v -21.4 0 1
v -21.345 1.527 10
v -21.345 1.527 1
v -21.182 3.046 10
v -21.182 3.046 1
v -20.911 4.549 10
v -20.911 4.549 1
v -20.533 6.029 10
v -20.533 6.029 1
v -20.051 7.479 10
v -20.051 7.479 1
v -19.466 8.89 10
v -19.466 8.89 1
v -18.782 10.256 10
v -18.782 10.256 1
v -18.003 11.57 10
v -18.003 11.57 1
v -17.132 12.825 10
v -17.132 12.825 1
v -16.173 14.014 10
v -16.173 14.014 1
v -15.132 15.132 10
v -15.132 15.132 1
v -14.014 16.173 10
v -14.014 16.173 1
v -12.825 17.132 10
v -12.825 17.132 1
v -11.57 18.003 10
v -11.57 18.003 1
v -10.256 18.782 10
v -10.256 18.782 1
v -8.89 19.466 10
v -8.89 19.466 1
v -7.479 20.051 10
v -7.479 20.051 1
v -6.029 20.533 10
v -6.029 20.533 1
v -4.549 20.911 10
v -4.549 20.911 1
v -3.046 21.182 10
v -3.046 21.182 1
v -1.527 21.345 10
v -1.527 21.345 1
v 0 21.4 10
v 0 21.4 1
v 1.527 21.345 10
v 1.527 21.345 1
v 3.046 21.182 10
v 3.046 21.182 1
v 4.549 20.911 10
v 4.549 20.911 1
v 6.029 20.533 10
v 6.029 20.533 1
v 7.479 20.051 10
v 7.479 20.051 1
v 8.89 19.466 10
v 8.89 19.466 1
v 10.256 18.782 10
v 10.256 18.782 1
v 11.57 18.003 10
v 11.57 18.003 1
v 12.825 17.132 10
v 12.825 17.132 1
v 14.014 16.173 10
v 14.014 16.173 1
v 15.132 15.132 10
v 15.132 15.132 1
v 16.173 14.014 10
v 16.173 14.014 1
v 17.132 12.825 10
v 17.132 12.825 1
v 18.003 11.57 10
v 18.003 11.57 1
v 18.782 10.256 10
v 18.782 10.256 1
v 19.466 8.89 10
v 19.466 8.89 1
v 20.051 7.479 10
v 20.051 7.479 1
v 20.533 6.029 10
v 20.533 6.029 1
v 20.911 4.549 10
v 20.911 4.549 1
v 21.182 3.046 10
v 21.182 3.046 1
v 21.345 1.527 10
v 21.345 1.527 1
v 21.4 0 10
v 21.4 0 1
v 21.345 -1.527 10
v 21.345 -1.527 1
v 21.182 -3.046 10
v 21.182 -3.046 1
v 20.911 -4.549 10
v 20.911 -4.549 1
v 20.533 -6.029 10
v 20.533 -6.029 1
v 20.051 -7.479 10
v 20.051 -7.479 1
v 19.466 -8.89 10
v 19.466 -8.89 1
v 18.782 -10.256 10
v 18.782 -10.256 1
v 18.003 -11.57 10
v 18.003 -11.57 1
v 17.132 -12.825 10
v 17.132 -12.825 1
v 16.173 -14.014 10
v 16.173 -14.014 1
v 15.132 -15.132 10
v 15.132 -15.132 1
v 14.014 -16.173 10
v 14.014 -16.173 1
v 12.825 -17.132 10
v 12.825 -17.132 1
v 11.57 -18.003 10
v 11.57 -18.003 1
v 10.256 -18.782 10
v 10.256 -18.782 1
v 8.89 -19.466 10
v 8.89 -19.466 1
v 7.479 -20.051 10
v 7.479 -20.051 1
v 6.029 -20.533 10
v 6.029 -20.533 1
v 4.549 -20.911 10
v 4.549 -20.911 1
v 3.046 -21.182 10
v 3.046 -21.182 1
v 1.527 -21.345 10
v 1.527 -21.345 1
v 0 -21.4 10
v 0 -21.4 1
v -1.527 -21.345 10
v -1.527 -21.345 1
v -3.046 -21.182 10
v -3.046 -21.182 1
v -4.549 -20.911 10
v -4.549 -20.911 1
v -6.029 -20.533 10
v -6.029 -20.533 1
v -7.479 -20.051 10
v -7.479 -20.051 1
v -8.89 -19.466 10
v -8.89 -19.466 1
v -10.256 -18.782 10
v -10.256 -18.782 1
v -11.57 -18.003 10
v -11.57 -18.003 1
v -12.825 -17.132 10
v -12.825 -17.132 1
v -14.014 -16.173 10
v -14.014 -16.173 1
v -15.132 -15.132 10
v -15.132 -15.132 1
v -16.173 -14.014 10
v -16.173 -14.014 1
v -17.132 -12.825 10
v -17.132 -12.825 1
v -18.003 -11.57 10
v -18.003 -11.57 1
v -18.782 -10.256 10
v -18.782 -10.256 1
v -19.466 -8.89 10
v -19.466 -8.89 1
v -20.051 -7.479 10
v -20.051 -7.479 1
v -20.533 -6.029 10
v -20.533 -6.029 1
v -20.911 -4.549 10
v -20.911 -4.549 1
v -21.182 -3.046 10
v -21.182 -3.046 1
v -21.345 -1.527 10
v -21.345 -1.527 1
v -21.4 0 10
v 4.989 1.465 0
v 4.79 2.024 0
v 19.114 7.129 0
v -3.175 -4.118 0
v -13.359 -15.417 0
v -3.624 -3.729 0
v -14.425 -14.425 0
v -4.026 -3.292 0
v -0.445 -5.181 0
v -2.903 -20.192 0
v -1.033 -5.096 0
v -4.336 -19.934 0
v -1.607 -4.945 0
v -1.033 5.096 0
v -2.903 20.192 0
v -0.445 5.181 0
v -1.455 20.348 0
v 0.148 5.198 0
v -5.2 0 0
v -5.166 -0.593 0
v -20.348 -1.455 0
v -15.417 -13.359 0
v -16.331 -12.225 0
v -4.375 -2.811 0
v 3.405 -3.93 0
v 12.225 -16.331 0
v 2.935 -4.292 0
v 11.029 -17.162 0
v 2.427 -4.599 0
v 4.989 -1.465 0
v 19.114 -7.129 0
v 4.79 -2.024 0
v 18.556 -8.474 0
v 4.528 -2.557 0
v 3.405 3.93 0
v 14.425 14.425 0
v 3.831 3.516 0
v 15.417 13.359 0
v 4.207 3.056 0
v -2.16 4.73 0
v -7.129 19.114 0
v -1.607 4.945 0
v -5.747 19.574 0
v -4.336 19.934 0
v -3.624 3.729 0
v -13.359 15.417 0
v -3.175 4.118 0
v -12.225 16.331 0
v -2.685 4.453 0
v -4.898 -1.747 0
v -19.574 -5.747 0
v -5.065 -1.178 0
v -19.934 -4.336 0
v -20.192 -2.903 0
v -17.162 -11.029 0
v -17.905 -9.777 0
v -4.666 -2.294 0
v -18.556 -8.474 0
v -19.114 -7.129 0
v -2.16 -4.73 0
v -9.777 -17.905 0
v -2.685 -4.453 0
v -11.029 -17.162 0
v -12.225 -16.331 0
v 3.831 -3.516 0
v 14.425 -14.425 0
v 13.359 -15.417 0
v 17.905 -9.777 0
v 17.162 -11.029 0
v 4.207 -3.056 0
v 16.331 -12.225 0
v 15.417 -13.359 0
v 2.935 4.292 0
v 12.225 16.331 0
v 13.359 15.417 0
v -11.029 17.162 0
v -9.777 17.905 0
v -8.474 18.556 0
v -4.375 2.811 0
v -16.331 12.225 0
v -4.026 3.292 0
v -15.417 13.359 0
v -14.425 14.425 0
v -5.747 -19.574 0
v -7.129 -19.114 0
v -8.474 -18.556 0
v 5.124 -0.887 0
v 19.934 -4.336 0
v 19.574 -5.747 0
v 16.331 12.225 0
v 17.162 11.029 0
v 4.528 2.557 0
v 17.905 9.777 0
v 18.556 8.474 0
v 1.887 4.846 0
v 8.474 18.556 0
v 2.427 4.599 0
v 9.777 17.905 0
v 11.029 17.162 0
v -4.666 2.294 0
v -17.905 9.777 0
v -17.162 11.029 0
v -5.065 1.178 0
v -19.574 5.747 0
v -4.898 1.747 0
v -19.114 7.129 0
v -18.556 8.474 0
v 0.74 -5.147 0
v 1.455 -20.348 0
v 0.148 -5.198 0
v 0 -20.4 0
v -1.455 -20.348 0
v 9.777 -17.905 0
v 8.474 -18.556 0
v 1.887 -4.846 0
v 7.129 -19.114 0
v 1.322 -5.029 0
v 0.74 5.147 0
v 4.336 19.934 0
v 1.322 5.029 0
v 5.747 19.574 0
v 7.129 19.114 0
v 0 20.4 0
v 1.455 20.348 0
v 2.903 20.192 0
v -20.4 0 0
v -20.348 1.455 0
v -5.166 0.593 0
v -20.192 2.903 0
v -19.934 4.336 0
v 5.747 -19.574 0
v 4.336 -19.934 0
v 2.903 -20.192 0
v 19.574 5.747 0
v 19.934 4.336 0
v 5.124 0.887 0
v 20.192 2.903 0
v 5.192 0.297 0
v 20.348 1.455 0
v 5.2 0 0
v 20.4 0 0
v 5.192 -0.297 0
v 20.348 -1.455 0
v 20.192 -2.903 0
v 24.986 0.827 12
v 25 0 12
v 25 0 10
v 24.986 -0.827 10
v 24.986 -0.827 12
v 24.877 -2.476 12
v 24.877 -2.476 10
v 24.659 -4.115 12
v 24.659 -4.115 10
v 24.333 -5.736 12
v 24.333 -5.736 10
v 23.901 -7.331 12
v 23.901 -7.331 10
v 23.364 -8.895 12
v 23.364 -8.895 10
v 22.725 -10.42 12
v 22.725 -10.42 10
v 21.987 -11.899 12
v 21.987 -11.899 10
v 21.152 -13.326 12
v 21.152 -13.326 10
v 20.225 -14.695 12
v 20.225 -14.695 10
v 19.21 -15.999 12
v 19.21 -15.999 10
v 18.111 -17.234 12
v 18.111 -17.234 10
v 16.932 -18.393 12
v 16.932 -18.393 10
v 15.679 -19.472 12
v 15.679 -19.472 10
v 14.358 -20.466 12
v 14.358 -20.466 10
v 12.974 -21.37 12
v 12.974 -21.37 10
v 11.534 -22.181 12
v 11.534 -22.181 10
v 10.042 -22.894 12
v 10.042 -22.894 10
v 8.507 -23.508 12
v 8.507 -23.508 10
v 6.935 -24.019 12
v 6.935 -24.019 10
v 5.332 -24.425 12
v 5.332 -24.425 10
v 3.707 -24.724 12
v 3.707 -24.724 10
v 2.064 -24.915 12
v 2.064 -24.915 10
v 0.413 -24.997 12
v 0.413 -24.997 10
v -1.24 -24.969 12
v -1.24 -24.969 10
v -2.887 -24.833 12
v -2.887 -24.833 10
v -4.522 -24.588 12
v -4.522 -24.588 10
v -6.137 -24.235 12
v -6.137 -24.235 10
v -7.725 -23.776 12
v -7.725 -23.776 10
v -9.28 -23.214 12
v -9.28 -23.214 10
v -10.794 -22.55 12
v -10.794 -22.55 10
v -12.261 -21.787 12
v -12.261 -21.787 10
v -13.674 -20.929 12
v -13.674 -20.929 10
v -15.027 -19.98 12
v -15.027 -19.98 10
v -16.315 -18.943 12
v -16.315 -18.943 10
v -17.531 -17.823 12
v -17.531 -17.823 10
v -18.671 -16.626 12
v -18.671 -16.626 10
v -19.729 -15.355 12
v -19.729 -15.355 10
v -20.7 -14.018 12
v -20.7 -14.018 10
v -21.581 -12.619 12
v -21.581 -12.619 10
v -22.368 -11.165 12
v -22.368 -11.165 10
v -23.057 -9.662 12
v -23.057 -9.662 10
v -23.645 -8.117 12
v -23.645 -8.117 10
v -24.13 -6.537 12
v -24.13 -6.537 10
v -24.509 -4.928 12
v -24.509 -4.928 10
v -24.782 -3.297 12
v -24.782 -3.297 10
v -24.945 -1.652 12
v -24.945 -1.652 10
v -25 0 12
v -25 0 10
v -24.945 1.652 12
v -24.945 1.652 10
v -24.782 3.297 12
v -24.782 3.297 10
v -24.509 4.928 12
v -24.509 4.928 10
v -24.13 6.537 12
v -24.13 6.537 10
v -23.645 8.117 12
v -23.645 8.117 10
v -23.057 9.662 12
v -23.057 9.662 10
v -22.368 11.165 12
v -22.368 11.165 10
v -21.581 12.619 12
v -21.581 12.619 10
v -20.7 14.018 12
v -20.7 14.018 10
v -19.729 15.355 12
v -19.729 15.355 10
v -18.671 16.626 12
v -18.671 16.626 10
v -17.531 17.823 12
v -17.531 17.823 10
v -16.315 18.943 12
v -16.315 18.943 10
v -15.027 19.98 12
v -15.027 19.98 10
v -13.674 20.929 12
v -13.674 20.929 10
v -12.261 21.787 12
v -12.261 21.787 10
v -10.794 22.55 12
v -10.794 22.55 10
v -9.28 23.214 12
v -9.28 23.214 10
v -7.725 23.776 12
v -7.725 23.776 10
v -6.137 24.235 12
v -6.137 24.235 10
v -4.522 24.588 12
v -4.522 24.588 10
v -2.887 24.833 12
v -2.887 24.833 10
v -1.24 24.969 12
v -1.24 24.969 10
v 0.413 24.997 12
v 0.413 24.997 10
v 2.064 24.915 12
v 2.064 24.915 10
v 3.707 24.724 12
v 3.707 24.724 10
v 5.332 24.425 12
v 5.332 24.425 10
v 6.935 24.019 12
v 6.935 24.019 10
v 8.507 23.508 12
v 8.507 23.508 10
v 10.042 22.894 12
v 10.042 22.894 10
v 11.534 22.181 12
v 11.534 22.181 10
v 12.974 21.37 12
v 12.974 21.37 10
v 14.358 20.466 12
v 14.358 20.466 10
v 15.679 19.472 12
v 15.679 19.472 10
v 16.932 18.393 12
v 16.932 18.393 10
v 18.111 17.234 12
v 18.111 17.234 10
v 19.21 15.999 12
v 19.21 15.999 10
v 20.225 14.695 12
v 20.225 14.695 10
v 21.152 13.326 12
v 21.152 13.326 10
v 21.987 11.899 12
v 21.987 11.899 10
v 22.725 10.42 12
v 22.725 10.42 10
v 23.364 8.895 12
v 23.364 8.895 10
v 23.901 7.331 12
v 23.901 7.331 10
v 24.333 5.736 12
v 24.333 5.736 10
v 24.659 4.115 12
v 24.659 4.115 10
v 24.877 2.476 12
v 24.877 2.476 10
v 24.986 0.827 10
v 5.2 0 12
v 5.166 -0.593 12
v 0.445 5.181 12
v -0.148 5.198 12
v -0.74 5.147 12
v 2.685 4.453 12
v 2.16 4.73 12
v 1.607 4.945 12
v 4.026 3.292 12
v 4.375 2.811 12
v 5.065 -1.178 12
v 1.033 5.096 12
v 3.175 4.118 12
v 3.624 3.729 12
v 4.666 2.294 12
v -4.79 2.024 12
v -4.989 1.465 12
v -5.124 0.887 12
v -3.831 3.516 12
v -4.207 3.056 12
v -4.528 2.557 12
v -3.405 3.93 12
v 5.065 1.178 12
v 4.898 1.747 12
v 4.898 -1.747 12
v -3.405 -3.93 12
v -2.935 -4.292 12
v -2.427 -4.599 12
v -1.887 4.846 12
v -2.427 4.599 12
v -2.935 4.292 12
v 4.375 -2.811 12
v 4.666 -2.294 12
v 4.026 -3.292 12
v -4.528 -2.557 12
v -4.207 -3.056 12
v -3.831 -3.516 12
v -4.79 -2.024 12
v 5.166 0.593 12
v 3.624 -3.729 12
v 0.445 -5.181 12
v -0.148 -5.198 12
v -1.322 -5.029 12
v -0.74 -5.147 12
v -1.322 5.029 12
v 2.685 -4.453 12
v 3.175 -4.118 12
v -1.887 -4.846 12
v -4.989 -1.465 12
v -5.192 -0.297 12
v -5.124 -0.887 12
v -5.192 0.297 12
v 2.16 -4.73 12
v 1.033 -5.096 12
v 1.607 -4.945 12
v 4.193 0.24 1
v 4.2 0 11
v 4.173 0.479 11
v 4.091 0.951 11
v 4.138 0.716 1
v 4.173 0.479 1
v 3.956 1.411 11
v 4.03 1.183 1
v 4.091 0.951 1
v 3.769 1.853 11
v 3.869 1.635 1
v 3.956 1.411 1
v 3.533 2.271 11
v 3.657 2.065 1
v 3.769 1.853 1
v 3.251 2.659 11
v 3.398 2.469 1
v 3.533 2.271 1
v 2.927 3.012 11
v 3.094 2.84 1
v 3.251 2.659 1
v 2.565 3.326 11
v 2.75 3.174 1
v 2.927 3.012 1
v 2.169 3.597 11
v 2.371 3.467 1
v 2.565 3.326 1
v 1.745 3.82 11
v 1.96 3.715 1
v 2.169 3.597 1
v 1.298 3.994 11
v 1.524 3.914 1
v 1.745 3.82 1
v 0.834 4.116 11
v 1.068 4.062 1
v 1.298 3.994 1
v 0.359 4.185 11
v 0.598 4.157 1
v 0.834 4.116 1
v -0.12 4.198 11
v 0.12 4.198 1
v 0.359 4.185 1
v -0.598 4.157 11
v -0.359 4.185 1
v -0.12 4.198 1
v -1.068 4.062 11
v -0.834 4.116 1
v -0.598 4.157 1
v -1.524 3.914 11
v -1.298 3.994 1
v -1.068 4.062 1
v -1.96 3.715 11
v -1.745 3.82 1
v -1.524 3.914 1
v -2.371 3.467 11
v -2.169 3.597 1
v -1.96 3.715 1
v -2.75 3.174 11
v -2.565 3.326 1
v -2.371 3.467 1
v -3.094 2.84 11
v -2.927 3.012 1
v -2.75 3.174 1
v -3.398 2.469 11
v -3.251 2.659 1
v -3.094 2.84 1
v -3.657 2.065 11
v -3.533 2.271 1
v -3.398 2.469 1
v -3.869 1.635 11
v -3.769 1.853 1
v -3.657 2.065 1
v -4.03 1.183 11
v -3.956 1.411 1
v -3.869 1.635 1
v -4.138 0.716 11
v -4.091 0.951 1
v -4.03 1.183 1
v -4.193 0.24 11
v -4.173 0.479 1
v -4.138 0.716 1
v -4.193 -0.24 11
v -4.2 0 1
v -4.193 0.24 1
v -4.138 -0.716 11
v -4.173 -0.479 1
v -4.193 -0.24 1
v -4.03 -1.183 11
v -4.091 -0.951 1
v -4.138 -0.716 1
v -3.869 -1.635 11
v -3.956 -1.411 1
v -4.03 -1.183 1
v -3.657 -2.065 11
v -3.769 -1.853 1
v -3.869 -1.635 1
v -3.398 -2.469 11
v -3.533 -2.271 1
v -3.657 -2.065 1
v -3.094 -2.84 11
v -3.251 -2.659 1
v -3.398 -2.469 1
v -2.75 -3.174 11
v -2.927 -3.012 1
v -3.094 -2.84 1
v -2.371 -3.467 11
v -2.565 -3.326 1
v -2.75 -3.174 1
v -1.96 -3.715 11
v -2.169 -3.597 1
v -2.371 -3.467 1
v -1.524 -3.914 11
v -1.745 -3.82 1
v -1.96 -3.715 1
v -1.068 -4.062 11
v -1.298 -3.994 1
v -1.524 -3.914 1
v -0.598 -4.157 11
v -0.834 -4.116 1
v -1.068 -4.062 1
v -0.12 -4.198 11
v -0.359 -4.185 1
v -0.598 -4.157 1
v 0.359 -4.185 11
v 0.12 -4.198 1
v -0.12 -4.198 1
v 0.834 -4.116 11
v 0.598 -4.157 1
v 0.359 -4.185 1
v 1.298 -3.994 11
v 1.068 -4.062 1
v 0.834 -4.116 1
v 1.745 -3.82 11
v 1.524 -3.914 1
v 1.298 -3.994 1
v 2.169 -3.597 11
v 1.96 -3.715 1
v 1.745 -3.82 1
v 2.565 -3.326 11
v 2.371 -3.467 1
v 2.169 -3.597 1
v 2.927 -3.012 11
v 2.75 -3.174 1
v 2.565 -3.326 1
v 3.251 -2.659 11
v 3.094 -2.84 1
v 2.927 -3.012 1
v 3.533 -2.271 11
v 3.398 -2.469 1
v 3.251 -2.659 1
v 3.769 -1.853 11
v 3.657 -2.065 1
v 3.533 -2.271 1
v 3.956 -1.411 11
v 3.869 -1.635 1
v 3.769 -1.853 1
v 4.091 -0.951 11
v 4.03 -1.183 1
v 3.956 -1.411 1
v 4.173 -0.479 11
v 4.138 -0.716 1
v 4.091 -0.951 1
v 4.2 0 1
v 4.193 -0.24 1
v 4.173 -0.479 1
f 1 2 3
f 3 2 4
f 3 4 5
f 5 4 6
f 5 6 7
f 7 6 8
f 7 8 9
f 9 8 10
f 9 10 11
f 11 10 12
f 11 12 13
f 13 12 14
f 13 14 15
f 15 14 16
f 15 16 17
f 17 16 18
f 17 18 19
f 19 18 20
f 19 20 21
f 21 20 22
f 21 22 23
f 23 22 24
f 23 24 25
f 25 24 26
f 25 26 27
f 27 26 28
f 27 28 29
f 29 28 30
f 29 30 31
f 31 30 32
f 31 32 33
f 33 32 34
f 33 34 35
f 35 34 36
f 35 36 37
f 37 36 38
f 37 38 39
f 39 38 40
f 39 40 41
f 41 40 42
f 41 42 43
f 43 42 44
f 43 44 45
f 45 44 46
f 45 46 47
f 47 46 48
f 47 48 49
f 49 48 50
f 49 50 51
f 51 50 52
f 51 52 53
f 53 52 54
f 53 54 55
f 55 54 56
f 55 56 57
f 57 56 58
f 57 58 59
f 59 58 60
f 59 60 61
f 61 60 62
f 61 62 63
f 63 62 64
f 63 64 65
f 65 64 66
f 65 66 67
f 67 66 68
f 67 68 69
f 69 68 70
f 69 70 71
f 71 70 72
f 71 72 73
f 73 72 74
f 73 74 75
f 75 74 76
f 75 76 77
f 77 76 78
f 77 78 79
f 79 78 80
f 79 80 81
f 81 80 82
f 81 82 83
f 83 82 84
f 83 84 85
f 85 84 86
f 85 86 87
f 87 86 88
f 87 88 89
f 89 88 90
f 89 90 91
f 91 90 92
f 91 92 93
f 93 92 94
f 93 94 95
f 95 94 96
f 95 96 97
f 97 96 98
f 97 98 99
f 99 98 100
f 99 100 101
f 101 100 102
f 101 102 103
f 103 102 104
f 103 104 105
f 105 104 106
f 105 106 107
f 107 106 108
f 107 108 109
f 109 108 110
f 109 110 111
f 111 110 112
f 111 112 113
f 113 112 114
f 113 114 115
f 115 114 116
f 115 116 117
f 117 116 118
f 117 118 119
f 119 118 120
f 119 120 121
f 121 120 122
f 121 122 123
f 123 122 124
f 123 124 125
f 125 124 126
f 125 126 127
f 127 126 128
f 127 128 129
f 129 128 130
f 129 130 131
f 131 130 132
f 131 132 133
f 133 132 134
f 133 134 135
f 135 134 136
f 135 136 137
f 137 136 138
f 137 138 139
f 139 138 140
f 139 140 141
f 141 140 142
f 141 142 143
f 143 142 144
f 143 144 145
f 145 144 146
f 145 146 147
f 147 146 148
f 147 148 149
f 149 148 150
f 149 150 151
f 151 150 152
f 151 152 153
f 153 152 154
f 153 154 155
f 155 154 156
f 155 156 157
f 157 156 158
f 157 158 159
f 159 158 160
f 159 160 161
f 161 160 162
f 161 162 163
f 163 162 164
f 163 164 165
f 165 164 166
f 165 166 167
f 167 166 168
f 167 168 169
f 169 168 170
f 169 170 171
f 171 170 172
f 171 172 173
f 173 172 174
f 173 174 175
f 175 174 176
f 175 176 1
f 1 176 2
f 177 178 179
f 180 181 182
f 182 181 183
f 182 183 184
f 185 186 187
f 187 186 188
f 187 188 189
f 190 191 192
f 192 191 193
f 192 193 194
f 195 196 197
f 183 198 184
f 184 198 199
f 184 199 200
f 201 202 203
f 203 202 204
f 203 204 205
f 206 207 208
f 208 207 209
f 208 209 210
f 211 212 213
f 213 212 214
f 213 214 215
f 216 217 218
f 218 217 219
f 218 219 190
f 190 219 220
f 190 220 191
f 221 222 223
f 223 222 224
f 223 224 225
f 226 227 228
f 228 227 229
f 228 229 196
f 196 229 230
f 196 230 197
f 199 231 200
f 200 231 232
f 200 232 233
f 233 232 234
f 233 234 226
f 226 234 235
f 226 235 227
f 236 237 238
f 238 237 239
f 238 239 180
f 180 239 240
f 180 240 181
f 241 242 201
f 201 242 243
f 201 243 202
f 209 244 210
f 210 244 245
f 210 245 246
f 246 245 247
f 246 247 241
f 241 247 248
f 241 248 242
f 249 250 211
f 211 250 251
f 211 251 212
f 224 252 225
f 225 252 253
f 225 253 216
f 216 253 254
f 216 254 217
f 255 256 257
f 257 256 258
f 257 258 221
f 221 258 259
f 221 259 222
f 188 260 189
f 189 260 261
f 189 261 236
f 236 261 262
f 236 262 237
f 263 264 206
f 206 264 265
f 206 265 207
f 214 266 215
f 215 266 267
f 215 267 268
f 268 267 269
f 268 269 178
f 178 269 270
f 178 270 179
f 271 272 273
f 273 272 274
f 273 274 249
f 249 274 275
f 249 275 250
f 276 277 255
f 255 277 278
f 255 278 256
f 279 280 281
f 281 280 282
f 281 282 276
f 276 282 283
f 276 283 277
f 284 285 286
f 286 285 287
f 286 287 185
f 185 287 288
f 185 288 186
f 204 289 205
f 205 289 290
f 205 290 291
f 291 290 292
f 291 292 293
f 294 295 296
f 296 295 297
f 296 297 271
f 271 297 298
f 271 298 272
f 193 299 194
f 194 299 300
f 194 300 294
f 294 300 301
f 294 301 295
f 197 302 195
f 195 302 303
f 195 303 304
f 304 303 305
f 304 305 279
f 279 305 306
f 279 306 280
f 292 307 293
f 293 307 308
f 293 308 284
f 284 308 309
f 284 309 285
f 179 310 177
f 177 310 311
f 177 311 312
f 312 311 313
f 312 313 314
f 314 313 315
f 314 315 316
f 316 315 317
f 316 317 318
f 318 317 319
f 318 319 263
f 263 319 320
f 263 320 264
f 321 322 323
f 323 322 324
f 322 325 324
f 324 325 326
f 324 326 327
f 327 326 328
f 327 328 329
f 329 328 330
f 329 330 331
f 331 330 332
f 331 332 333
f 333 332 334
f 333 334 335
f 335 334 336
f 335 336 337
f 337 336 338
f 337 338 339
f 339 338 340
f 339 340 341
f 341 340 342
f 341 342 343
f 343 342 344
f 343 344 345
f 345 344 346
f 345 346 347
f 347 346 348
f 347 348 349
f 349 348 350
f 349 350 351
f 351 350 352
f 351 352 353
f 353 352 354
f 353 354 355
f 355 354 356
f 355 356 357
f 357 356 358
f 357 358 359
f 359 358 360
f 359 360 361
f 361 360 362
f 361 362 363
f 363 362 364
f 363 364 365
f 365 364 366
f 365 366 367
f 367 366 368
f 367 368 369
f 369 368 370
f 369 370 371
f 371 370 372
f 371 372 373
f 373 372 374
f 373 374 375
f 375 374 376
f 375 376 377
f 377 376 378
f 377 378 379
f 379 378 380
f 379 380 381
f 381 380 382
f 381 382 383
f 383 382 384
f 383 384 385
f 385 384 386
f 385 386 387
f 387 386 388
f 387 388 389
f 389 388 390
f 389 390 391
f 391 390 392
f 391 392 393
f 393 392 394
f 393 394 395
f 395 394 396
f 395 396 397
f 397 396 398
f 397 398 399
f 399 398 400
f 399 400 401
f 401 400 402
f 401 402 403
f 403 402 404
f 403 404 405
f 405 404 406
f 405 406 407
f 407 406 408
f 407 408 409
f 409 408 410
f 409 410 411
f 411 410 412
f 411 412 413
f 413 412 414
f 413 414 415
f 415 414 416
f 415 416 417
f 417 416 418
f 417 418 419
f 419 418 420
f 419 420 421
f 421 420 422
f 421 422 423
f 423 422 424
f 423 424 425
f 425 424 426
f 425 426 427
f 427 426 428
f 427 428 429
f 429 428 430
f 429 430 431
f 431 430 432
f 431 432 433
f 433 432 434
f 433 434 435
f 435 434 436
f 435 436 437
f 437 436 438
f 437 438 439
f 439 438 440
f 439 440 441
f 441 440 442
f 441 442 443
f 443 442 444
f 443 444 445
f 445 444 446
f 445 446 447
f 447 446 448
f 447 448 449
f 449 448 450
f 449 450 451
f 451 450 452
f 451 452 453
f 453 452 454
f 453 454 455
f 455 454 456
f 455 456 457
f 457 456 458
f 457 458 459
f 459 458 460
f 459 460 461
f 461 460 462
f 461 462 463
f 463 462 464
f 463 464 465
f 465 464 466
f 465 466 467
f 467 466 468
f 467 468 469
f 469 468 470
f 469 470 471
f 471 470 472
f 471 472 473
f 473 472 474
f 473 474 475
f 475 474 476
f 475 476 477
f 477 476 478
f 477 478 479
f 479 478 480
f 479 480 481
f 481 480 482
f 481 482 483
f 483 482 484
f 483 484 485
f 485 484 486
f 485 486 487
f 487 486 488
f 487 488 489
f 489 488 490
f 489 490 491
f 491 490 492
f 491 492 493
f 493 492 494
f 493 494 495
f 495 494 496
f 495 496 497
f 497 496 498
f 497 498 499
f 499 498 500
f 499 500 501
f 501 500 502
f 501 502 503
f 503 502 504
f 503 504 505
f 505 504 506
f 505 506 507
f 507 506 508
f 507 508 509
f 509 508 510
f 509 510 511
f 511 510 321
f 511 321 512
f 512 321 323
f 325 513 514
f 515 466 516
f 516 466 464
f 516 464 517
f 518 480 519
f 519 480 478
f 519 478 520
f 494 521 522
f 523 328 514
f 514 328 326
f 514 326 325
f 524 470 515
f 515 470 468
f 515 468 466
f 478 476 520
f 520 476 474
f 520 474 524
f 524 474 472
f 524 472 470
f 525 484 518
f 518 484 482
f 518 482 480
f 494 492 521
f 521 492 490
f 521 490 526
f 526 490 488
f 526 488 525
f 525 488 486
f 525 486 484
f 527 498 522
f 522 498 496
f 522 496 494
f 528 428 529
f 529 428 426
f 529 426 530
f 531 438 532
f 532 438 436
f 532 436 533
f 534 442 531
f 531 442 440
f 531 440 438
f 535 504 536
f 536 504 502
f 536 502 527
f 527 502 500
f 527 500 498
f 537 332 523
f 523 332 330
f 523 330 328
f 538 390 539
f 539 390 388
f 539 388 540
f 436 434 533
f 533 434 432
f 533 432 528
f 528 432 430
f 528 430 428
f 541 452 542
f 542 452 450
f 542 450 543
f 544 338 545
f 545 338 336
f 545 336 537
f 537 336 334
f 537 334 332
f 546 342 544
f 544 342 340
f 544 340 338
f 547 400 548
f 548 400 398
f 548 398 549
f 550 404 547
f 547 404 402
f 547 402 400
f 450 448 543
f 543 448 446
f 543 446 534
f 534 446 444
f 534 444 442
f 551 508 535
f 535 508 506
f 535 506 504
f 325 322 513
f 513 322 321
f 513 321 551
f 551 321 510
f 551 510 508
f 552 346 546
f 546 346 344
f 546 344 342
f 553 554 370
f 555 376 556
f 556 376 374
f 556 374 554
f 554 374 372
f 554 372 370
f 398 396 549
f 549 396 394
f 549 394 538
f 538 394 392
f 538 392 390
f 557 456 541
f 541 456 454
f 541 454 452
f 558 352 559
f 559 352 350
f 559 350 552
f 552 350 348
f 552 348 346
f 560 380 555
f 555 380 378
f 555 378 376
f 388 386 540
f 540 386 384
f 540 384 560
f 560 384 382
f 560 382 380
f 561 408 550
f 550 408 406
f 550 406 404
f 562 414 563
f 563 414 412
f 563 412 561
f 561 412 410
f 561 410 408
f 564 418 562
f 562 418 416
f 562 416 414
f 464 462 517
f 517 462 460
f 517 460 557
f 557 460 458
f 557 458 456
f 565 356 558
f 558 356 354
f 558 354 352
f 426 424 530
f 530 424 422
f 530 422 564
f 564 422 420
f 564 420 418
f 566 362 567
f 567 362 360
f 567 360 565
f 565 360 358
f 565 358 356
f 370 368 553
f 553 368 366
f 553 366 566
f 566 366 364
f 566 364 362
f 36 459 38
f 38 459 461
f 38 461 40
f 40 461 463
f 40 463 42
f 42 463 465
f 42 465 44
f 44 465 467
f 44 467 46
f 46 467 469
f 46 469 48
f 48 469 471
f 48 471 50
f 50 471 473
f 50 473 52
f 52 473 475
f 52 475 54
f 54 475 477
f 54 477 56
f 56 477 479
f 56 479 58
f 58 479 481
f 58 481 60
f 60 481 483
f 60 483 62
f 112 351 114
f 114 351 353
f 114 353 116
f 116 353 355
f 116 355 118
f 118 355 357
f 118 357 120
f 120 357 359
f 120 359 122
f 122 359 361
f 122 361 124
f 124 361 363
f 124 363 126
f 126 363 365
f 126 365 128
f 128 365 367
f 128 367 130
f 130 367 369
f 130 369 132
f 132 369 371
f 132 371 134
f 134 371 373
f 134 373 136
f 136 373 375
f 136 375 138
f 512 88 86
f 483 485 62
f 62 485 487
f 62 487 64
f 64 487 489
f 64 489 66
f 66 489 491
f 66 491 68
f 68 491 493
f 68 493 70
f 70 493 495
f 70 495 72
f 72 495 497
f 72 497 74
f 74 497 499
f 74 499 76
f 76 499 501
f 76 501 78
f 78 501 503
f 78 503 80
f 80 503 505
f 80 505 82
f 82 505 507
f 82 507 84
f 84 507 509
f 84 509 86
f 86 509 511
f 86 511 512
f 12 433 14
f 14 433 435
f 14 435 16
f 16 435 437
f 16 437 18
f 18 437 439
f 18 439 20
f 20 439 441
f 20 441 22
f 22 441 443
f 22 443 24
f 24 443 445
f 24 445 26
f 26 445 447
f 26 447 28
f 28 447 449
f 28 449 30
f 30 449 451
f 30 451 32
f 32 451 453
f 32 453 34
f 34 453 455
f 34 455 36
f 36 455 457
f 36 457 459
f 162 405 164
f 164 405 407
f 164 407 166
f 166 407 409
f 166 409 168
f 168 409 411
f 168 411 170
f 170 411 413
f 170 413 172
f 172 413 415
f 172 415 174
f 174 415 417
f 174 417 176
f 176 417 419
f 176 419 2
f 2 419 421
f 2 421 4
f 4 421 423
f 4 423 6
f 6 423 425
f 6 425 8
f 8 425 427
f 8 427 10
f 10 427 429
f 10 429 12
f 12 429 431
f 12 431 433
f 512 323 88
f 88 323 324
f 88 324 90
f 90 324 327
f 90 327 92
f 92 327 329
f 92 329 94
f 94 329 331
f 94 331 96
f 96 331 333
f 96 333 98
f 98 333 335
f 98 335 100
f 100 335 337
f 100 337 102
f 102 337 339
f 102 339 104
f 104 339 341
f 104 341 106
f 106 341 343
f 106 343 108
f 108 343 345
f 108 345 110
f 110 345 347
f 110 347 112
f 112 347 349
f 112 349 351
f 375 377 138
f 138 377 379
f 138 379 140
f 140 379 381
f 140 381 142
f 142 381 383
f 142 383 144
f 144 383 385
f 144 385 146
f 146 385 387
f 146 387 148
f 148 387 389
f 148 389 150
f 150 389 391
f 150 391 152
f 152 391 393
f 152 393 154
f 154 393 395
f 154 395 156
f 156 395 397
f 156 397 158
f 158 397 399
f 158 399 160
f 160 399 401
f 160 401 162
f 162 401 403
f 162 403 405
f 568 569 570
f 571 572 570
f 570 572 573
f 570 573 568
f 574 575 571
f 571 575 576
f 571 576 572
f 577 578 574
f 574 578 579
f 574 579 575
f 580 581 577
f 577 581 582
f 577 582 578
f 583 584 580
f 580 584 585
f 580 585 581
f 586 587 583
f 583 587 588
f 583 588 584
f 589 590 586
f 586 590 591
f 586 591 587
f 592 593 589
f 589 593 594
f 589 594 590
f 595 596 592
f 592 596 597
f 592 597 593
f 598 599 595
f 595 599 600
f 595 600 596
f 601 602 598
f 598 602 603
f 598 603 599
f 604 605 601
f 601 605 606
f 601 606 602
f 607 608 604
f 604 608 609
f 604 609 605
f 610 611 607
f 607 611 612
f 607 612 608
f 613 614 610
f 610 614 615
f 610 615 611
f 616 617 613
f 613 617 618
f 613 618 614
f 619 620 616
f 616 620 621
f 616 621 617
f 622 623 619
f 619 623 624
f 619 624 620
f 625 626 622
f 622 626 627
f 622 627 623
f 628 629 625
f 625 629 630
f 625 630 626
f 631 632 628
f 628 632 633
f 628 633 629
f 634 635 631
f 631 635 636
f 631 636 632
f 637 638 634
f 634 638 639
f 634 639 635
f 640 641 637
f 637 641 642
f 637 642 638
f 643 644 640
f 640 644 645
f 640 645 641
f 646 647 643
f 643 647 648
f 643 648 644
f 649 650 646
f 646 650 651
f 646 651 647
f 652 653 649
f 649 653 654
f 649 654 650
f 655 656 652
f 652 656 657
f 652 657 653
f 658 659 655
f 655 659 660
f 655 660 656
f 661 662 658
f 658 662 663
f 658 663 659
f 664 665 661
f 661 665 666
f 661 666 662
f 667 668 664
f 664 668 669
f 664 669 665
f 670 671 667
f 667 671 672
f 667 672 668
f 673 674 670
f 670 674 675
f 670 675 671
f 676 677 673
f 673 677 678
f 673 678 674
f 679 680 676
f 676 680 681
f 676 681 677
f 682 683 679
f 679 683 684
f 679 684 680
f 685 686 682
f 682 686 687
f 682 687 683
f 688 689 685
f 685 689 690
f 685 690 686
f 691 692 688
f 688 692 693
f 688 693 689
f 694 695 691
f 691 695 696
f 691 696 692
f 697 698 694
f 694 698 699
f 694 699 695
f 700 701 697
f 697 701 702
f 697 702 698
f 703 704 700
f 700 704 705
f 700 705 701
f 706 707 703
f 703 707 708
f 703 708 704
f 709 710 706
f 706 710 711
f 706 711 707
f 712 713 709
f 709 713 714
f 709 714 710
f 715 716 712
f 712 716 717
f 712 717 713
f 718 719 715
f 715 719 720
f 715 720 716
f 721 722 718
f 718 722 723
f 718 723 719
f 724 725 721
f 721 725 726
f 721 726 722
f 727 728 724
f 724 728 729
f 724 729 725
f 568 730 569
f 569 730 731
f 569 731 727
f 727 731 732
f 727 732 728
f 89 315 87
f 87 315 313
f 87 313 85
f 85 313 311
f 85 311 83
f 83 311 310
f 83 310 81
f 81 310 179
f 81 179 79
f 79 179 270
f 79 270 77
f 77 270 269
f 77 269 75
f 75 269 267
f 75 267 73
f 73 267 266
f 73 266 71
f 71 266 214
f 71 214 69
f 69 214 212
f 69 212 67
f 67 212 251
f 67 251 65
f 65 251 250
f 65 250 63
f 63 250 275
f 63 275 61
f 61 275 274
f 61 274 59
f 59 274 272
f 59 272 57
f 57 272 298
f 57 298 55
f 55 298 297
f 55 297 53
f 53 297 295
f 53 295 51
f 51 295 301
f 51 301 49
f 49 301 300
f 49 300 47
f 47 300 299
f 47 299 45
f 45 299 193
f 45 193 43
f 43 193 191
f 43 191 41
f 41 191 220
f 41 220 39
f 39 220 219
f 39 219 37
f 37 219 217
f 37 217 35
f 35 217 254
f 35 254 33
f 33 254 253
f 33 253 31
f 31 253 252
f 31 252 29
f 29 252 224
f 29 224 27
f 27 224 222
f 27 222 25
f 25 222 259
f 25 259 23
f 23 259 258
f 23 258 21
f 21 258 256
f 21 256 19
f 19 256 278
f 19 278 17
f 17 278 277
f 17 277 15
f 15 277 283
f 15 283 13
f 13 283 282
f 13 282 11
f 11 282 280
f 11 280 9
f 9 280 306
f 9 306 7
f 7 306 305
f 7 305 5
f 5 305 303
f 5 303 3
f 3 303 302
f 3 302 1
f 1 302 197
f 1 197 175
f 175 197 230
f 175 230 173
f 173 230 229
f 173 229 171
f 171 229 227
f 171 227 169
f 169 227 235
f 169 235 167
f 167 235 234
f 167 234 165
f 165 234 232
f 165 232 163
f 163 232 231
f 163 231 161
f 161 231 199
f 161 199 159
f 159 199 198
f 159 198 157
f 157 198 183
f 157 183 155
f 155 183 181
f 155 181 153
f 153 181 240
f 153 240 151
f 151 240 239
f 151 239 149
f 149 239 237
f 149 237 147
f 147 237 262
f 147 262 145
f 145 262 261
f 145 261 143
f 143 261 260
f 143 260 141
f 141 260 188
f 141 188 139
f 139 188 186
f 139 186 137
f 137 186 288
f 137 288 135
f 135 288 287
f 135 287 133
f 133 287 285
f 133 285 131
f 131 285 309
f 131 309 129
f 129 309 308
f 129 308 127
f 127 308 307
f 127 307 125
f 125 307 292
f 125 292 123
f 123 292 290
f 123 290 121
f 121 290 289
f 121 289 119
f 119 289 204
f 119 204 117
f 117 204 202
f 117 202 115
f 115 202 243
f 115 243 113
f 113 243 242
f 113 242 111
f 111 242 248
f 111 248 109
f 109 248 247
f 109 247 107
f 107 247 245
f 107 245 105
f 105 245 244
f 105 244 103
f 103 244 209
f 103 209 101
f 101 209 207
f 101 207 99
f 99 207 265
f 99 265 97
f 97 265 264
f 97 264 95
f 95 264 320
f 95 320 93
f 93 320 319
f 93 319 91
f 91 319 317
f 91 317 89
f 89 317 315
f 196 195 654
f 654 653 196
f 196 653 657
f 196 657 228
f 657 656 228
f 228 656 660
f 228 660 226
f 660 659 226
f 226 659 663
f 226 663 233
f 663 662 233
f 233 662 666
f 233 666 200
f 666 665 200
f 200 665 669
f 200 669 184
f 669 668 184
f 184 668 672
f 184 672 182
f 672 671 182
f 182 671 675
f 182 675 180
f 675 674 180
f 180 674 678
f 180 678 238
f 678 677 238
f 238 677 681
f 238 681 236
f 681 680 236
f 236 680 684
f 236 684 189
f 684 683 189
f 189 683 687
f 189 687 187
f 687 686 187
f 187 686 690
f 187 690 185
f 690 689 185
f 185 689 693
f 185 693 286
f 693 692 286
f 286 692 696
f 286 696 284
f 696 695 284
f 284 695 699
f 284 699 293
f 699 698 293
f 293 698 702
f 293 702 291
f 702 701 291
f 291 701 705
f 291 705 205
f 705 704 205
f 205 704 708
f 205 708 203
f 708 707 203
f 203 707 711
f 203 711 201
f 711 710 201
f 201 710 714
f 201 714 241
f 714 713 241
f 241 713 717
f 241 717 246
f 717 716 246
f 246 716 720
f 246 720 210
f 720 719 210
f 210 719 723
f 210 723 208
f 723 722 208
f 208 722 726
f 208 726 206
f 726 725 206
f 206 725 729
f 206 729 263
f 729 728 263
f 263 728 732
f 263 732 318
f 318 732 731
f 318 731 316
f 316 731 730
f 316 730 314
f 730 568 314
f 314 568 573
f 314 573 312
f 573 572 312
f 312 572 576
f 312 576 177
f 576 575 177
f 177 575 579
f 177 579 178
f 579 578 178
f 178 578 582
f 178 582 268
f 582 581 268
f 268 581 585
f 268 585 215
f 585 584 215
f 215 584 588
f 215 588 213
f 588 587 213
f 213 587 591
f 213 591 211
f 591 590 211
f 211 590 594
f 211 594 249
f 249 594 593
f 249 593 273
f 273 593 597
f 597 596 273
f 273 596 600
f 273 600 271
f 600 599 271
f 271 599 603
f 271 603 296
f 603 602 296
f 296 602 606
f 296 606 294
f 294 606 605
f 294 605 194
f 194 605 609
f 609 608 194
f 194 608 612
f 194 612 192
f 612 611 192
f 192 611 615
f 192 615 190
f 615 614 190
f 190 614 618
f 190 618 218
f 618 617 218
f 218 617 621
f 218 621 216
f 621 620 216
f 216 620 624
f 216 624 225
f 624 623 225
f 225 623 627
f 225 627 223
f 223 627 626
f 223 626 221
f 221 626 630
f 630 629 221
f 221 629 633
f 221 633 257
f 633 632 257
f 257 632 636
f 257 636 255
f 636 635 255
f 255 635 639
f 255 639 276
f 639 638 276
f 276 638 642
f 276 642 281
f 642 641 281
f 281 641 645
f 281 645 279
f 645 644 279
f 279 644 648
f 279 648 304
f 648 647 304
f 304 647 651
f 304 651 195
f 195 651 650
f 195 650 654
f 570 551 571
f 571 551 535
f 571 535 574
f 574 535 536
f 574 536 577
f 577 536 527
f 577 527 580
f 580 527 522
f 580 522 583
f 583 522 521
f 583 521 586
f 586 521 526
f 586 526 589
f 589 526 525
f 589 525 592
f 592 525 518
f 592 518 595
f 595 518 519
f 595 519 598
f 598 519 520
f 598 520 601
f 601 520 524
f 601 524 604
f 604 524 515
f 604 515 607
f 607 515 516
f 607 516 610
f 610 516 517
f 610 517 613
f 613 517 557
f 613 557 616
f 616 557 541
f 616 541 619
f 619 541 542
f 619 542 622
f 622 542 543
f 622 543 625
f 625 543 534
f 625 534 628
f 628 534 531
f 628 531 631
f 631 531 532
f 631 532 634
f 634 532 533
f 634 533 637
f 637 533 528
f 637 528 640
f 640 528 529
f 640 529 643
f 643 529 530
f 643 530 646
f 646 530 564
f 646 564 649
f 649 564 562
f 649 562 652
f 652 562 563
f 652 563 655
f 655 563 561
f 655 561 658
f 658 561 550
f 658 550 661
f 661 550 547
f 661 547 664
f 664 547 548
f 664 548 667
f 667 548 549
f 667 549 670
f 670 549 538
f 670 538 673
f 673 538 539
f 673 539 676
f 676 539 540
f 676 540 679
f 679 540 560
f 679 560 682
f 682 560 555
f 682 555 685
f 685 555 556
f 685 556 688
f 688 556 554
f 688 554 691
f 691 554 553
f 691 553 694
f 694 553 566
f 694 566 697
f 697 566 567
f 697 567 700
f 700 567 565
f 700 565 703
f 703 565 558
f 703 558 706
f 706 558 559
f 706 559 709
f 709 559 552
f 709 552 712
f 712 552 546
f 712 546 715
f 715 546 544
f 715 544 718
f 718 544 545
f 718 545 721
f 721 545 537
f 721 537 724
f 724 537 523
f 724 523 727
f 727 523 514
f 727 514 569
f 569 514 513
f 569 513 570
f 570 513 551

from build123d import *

# Parameters (mm, degrees)
ESQUISSE1_R                  = 21.4
BOSS_EXTRU_1_DEPTH           = 10
ESQUISSE2_R                  = 25
BOSS_EXTRU_2_DEPTH           = 2
ENL_V_MAT_EXTRU_1_DEPTH      = 38.336309405
ENL_V_MAT_EXTRU_1_DEPTH_BACK = 38.336309405
ESQUISSE3_R                  = 4.2
CHANFREIN1_SIZE              = 1


with BuildPart() as part:
    # Esquisse1 → Boss.-Extru.1 (new body)
    with BuildSketch(Plane.XY):
        Circle(ESQUISSE1_R)
    extrude(amount=BOSS_EXTRU_1_DEPTH)

    # Esquisse2 → Boss.-Extru.2 (add)
    with BuildSketch(Plane.XY.offset(10)):
        Circle(ESQUISSE2_R)
    extrude(amount=BOSS_EXTRU_2_DEPTH)

    # Esquisse3 → Enlèv. mat.-Extru.1 (cut, two sides: drawn at the far end of the back side and taken through both)
    with BuildSketch(Plane.XY.offset(12).offset(-ENL_V_MAT_EXTRU_1_DEPTH_BACK)):
        Circle(ESQUISSE3_R)
    extrude(amount=ENL_V_MAT_EXTRU_1_DEPTH + ENL_V_MAT_EXTRU_1_DEPTH_BACK, mode=Mode.SUBTRACT)

    # Chanfrein1
    chanfrein1_edges = [part.edges().sort_by_distance(p)[0] for p in [
        (-4.2, 0, 12),
        (-4.2, 0, 0),
        (-21.4, 0, 0),
    ]]
    chamfer(chanfrein1_edges, length=CHANFREIN1_SIZE)


solid = part.part
